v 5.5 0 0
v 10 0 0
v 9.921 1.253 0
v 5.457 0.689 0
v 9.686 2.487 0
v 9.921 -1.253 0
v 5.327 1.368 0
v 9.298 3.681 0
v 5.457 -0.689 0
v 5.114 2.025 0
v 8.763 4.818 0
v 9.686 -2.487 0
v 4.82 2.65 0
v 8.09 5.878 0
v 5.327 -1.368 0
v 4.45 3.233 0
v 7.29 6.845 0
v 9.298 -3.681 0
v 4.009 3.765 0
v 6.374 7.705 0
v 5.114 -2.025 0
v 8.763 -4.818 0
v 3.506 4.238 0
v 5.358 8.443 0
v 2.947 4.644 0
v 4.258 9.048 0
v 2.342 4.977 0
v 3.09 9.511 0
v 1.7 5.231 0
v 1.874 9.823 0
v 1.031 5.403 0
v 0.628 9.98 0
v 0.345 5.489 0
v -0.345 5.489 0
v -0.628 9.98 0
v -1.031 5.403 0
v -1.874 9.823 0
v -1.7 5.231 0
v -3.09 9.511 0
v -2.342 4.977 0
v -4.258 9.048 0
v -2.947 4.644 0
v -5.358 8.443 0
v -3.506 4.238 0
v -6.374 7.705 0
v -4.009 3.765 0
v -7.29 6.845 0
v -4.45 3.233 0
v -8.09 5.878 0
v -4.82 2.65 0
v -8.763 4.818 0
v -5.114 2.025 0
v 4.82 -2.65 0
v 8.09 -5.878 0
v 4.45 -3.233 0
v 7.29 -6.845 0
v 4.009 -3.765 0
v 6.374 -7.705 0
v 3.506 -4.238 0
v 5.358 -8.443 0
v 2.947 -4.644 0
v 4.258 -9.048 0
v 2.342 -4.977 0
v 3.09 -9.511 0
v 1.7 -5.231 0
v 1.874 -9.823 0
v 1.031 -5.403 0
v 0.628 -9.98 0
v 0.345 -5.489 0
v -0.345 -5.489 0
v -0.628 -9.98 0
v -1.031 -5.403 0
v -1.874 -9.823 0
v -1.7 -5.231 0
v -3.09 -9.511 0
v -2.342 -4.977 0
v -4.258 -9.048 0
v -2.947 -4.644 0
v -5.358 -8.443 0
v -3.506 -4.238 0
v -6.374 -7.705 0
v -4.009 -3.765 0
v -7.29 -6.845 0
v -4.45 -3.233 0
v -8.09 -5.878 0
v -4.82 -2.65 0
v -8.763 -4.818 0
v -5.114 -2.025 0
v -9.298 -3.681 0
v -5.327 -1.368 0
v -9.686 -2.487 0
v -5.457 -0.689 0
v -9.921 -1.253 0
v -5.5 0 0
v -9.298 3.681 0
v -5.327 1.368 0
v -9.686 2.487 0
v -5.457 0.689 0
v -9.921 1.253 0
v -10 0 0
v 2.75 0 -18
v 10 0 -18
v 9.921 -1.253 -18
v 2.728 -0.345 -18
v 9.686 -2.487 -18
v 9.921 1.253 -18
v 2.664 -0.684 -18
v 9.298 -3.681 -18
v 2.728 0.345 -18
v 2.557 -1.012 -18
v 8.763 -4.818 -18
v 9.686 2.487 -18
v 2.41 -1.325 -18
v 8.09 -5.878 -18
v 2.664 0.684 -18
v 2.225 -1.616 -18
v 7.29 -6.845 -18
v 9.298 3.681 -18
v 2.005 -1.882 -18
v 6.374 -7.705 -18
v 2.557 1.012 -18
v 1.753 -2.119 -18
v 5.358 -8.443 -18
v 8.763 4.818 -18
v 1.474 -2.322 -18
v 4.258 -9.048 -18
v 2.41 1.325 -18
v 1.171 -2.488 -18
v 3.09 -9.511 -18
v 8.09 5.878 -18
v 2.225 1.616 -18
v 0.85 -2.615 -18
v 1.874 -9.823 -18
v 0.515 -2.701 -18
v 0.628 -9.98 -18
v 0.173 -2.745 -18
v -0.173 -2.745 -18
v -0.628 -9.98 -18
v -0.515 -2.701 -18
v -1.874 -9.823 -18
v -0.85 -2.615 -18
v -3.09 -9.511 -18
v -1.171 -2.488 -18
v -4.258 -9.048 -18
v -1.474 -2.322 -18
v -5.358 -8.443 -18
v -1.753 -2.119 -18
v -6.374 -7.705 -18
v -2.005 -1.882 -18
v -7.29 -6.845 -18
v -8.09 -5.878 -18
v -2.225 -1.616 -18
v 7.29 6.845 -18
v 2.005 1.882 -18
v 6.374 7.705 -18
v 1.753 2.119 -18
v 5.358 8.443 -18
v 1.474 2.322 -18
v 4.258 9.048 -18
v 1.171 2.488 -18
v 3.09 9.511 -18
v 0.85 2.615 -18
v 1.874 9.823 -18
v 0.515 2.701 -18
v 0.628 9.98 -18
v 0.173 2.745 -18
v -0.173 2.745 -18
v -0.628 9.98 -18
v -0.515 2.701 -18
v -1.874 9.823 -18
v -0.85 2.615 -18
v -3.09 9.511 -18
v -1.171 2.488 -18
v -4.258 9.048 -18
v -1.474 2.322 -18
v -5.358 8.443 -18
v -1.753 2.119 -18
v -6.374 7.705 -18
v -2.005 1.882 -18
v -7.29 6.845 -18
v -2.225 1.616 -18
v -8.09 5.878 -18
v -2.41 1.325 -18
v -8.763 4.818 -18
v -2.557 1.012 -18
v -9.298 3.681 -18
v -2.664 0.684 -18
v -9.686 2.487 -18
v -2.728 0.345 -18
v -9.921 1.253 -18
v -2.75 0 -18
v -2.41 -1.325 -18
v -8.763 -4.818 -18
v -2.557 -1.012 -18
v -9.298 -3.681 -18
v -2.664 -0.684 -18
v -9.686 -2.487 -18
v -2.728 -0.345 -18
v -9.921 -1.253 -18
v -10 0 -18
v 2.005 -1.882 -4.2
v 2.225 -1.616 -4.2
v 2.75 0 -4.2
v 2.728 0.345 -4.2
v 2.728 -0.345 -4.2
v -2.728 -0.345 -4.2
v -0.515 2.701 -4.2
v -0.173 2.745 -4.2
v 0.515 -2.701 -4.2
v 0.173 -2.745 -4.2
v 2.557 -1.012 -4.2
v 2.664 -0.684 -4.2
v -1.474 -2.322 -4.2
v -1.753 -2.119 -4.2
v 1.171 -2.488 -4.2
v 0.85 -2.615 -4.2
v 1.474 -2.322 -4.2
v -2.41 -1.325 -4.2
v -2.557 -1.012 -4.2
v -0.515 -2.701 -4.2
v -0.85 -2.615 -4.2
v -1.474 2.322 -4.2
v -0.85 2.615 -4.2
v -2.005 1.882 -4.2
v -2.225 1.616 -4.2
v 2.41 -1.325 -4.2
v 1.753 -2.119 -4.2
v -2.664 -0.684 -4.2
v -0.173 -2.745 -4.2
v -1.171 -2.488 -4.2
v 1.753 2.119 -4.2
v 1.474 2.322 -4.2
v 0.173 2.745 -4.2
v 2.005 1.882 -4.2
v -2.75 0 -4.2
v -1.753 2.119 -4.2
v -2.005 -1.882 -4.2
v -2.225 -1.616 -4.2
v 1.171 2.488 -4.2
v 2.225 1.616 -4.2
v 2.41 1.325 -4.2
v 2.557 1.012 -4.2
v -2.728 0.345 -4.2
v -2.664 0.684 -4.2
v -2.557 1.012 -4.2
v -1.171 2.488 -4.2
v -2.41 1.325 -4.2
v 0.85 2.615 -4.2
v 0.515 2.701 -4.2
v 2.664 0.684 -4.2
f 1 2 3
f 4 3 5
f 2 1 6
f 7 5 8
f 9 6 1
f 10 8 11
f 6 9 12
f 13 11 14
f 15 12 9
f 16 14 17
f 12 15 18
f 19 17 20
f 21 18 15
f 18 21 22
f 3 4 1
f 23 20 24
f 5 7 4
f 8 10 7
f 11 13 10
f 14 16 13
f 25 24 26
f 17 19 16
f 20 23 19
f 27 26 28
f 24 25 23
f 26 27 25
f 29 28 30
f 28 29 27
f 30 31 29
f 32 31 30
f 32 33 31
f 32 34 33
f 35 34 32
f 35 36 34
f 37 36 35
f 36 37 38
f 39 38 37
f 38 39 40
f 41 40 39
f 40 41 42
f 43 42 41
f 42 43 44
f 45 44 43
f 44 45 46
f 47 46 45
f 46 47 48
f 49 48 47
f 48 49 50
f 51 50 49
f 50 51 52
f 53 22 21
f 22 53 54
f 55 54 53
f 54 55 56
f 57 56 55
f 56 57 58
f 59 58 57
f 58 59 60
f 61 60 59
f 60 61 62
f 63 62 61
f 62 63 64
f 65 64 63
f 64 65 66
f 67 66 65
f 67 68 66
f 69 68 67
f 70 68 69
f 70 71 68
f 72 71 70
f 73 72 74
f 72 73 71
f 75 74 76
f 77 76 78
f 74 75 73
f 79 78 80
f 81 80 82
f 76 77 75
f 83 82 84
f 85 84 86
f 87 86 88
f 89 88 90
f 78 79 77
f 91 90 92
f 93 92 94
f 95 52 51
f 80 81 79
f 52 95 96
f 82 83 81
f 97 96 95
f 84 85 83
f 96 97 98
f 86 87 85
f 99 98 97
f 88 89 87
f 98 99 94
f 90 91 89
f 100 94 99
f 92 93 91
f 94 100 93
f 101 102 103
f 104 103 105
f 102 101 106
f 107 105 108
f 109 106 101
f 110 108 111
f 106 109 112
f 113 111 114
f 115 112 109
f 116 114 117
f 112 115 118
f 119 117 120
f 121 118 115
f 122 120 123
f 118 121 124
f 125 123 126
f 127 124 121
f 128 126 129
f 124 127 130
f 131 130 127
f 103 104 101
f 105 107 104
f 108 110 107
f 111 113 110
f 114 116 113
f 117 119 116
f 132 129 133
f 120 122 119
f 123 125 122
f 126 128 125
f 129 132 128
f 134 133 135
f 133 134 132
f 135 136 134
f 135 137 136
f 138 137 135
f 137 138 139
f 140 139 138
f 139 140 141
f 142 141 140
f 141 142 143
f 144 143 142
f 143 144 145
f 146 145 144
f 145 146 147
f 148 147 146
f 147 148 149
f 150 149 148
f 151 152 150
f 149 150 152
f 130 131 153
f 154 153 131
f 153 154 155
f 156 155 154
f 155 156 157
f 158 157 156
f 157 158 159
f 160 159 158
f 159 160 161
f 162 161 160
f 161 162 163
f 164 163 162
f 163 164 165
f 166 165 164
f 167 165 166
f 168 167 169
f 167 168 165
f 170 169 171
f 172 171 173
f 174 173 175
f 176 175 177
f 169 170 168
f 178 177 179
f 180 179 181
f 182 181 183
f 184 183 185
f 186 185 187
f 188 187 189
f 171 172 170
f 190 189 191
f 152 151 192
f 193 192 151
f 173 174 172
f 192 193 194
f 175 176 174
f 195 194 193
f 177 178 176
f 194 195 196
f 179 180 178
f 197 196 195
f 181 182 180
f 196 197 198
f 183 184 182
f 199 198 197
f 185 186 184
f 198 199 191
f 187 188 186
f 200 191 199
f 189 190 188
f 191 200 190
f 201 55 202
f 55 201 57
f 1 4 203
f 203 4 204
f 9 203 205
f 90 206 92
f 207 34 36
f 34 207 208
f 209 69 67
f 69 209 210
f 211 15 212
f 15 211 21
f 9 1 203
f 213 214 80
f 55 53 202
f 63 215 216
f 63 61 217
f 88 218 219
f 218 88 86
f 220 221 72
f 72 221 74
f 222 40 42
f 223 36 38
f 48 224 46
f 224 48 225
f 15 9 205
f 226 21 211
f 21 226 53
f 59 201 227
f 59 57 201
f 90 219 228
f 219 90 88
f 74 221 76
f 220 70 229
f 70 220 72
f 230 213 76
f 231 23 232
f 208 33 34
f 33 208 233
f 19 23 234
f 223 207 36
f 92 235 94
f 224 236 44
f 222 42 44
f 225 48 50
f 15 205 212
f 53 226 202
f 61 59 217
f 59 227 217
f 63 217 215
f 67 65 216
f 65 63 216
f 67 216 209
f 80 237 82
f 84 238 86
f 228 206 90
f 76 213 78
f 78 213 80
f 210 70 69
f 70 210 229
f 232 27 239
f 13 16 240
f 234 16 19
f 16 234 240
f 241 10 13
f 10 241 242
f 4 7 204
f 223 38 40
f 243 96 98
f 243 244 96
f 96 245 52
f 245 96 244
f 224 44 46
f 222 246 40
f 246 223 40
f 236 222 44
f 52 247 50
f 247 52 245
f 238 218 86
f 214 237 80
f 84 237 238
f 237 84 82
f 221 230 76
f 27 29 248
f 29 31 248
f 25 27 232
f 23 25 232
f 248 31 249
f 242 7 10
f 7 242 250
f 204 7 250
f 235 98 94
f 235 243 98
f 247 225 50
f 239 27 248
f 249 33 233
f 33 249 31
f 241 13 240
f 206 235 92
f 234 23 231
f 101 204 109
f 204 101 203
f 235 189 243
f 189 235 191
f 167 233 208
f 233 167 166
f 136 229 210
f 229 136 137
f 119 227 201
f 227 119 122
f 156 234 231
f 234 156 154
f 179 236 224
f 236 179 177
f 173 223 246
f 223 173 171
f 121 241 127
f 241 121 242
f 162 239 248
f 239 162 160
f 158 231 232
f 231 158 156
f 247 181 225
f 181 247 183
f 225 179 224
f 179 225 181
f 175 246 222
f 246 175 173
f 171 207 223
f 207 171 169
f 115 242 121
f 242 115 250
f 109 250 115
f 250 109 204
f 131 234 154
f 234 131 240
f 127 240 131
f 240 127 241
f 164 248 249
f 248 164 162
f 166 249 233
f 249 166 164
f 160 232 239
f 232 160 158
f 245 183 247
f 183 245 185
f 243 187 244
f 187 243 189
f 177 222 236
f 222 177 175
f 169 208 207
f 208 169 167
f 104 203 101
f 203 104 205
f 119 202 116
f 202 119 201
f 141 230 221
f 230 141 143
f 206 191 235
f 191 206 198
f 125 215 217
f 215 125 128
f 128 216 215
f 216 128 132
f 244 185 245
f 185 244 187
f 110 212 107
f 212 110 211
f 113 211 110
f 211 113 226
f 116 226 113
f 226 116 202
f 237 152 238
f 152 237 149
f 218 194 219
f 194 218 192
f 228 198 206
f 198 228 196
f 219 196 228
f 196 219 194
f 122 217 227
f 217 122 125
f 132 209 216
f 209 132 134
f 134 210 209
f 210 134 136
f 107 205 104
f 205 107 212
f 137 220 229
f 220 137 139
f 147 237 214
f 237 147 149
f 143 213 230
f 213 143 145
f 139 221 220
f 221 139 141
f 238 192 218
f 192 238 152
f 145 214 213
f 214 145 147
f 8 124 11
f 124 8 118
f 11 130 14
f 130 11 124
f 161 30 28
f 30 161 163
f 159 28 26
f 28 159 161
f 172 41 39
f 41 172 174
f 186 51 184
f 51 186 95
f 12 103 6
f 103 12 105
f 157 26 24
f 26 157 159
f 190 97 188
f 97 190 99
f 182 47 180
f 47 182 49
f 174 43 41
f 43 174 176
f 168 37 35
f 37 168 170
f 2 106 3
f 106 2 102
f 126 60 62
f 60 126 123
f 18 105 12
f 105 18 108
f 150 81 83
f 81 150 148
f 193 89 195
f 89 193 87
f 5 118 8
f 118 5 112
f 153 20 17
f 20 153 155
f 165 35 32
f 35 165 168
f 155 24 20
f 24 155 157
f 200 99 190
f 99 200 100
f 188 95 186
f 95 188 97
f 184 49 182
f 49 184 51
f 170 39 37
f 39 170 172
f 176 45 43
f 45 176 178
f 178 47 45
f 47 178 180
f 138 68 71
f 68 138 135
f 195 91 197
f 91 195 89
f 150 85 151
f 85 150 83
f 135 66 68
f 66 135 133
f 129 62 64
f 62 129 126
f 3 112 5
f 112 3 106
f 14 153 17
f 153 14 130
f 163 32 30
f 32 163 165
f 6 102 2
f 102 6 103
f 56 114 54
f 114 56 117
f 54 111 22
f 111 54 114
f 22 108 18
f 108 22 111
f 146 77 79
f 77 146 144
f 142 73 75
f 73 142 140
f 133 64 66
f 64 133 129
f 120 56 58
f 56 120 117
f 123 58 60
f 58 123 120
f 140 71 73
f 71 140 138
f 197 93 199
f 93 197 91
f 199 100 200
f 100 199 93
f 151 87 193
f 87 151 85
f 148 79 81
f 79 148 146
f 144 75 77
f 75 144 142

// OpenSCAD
$fn = 50;


difference() {
	union() {
		translate(v = [0, 0, -18.0000000000]) {
			cylinder(h = 18, r = 10.0000000000);
		}
	}
	union() {
		translate(v = [0, 0, 0]) {
			rotate(a = [0, 0, 0]) {
				difference() {
					union() {
						#translate(v = [0, 0, -18.0000000000]) {
							cylinder(h = 18, r = 2.2500000000);
						}
						#translate(v = [0, 0, -4.2000000000]) {
							cylinder(h = 4.2000000000, r = 10.0000000000, r1 = 2.7500000000, r2 = 5.5000000000);
						}
						#translate(v = [0, 0, -18.0000000000]) {
							cylinder(h = 18, r = 2.7500000000);
						}
						#translate(v = [0, 0, -18.0000000000]) {
							cylinder(h = 18, r = 2.2500000000);
						}
					}
					union();
				}
			}
		}
	}
}
